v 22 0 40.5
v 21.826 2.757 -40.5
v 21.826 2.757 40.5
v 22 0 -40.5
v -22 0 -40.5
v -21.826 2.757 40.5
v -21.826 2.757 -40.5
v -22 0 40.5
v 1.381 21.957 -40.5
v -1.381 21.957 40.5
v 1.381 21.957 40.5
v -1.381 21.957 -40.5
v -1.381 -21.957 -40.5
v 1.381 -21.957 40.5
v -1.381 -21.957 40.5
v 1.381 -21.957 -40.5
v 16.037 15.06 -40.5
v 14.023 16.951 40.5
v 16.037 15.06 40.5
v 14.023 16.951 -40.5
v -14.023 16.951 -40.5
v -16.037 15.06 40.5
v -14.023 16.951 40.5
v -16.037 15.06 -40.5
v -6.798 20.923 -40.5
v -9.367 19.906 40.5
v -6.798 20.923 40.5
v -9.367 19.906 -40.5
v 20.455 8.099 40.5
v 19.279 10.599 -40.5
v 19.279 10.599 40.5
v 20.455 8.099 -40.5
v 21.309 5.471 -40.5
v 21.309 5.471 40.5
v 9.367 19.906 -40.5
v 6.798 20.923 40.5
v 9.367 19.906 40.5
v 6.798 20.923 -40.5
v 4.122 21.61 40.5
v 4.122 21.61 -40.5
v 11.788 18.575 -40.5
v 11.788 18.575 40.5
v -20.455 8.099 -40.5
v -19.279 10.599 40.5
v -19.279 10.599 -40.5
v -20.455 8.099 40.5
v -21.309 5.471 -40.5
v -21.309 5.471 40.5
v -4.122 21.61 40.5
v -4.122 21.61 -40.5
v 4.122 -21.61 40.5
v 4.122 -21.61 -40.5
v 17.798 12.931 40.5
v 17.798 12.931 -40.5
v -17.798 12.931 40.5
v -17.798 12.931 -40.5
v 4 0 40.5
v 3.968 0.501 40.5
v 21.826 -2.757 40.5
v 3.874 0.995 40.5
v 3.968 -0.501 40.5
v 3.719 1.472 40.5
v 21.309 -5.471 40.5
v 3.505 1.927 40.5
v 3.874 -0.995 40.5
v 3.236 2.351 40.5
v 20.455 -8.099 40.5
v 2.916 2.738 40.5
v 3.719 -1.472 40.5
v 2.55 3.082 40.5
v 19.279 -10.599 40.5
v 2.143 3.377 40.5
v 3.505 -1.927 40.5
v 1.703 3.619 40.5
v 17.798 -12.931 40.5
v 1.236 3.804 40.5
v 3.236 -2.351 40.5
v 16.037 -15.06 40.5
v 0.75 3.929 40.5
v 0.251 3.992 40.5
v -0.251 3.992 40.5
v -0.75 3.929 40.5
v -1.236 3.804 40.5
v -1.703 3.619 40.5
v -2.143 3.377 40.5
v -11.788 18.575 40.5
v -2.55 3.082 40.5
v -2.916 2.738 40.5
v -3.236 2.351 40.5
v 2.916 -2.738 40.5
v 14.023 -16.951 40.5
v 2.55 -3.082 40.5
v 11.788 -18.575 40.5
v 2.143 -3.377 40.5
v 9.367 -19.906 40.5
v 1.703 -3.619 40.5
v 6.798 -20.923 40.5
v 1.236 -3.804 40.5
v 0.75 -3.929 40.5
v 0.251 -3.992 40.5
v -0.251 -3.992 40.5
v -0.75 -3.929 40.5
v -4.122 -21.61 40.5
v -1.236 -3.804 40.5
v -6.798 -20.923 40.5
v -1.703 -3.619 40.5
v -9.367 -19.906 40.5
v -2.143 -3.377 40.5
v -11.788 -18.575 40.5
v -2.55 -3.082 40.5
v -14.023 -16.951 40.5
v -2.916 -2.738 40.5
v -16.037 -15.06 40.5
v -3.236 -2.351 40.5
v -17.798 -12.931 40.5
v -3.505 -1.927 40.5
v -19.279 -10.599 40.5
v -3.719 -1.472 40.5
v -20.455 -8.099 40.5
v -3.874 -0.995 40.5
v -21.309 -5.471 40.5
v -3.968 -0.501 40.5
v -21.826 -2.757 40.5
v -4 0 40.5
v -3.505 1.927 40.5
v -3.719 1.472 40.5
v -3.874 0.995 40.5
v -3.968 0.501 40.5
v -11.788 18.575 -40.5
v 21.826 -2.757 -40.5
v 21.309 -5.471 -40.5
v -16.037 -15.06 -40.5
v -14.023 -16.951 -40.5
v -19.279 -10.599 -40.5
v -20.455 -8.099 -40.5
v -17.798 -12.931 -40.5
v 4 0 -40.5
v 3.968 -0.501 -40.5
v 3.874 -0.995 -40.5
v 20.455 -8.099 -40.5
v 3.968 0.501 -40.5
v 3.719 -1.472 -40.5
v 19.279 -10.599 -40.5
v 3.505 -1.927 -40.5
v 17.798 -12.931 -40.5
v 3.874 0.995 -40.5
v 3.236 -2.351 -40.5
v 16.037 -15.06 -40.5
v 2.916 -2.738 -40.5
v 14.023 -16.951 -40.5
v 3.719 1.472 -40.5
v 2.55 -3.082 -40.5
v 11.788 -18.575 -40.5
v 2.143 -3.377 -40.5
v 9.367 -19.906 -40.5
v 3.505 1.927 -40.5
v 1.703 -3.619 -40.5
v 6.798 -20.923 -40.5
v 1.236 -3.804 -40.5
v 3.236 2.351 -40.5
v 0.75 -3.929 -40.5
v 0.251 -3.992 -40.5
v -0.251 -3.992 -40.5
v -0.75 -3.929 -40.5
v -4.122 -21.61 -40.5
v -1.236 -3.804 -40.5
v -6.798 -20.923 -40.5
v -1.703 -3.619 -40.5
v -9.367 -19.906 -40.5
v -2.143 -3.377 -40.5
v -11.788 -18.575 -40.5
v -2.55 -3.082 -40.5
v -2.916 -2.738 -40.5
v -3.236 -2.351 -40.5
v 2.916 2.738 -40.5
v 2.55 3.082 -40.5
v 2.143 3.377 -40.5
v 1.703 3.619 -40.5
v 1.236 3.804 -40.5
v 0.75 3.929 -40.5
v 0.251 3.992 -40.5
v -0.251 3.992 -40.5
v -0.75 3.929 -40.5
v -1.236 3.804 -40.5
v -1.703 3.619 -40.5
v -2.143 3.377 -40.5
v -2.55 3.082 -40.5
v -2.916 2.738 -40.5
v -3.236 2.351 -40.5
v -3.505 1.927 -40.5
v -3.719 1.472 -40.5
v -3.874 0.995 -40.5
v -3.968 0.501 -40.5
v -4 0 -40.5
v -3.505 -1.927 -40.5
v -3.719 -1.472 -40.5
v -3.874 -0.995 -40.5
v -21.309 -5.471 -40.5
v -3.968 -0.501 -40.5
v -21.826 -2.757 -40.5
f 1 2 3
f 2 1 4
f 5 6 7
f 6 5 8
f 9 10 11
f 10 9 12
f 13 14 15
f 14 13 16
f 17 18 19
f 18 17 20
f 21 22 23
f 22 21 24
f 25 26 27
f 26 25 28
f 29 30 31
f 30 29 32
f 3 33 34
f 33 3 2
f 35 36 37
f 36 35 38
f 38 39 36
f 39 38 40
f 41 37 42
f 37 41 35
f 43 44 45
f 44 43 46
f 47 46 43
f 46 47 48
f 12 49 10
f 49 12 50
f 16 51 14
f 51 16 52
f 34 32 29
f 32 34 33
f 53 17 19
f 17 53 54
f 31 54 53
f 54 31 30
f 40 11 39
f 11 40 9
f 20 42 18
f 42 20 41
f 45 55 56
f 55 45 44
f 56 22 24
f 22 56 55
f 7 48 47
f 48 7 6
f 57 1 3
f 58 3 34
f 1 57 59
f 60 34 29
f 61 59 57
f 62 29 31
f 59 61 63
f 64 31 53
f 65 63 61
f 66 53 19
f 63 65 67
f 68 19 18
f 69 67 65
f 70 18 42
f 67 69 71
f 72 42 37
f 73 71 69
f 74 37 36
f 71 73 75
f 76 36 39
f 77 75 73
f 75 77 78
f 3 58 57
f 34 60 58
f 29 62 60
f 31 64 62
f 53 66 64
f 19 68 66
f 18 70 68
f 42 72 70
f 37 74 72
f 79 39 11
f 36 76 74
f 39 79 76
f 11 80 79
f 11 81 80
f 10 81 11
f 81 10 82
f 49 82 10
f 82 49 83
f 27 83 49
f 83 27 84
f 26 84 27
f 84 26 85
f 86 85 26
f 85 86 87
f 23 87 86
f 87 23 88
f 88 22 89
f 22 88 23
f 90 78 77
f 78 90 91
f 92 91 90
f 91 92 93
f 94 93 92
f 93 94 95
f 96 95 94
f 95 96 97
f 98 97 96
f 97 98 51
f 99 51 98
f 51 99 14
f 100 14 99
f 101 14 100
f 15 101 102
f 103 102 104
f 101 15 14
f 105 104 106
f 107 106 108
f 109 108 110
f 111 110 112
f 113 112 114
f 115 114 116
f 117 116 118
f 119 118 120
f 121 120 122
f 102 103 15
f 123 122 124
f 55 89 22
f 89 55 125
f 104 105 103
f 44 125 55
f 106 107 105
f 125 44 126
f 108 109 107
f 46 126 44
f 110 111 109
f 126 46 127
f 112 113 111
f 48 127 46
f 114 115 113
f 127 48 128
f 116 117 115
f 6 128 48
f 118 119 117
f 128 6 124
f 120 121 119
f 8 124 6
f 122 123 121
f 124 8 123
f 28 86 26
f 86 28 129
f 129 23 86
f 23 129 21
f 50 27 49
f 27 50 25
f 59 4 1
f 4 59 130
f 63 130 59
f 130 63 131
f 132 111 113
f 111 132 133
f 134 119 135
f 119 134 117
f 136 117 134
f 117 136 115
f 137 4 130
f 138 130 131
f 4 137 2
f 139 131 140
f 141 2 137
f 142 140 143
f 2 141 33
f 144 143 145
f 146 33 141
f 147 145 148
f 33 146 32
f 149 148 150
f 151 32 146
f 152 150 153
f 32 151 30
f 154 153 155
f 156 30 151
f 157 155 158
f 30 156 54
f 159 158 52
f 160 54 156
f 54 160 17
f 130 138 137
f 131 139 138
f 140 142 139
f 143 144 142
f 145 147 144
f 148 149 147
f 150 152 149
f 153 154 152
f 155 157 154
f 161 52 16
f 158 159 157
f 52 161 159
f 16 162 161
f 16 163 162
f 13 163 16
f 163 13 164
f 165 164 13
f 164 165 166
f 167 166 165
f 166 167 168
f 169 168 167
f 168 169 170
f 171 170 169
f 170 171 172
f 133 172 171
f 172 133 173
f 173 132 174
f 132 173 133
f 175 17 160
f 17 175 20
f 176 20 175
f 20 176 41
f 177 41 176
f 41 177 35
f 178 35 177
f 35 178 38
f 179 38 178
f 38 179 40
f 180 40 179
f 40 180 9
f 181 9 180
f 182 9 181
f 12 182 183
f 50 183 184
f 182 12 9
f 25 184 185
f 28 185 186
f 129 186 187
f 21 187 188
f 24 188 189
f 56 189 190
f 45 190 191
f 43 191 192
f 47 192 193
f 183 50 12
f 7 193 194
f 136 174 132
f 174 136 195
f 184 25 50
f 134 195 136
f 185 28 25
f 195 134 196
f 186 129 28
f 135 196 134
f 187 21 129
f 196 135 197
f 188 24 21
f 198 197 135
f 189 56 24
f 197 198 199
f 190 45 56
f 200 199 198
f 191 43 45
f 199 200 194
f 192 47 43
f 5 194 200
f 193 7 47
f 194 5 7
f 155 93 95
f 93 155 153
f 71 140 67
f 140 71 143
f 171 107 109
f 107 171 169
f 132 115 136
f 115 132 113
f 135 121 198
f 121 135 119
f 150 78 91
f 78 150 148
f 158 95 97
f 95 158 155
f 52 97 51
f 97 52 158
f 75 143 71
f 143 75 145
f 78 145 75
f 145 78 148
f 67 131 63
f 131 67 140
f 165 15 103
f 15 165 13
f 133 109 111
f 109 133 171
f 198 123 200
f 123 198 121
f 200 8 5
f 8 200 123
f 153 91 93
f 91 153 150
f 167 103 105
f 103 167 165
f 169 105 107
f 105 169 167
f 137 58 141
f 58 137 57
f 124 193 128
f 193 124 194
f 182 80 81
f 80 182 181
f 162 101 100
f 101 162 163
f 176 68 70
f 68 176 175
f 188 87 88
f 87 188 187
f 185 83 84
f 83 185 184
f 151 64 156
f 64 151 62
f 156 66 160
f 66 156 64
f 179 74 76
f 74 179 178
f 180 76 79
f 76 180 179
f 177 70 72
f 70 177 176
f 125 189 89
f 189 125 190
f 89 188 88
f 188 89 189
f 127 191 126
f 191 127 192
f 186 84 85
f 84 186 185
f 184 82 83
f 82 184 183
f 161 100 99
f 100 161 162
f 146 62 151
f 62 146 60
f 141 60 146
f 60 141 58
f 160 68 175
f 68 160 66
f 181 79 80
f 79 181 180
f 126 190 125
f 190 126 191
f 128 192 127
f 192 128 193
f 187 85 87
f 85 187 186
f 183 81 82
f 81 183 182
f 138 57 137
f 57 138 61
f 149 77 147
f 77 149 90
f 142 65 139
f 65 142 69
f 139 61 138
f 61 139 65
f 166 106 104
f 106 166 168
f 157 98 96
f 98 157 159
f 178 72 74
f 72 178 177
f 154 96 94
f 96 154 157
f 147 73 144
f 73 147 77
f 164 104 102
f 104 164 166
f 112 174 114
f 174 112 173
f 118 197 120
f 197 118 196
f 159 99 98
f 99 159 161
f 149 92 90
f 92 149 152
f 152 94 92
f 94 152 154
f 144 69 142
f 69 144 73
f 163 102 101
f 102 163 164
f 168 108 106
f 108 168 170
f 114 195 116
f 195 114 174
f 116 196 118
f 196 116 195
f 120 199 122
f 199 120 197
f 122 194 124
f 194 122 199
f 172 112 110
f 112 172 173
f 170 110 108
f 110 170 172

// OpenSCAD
$fn = 50;


difference() {
	union() {
		translate(v = [0, 0, -40.5000000000]) {
			cylinder(h = 81, r = 22.0000000000);
		}
	}
	union() {
		translate(v = [0, 0, -100.0000000000]) {
			cylinder(h = 200, r = 4);
		}
	}
}
